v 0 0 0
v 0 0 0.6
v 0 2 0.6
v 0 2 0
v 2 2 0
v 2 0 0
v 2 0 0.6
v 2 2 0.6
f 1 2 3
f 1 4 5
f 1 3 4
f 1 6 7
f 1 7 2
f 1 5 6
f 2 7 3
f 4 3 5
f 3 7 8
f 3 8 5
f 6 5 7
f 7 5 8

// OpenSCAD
/* Warning, this is a very basic generator with a lot of approximation 
input data : [UQFN, N9A, 2x2x0.6mm, 8, , A, C04-01050A]
generated by com.zoubworld.electronics.cad.model3d.Basic
Date : Sun Feb 15 10:50:49 CET 2026
*/

//body
color("black")
translate([0,0,0])
cube([2.0,2.0,0.6], center=false);
